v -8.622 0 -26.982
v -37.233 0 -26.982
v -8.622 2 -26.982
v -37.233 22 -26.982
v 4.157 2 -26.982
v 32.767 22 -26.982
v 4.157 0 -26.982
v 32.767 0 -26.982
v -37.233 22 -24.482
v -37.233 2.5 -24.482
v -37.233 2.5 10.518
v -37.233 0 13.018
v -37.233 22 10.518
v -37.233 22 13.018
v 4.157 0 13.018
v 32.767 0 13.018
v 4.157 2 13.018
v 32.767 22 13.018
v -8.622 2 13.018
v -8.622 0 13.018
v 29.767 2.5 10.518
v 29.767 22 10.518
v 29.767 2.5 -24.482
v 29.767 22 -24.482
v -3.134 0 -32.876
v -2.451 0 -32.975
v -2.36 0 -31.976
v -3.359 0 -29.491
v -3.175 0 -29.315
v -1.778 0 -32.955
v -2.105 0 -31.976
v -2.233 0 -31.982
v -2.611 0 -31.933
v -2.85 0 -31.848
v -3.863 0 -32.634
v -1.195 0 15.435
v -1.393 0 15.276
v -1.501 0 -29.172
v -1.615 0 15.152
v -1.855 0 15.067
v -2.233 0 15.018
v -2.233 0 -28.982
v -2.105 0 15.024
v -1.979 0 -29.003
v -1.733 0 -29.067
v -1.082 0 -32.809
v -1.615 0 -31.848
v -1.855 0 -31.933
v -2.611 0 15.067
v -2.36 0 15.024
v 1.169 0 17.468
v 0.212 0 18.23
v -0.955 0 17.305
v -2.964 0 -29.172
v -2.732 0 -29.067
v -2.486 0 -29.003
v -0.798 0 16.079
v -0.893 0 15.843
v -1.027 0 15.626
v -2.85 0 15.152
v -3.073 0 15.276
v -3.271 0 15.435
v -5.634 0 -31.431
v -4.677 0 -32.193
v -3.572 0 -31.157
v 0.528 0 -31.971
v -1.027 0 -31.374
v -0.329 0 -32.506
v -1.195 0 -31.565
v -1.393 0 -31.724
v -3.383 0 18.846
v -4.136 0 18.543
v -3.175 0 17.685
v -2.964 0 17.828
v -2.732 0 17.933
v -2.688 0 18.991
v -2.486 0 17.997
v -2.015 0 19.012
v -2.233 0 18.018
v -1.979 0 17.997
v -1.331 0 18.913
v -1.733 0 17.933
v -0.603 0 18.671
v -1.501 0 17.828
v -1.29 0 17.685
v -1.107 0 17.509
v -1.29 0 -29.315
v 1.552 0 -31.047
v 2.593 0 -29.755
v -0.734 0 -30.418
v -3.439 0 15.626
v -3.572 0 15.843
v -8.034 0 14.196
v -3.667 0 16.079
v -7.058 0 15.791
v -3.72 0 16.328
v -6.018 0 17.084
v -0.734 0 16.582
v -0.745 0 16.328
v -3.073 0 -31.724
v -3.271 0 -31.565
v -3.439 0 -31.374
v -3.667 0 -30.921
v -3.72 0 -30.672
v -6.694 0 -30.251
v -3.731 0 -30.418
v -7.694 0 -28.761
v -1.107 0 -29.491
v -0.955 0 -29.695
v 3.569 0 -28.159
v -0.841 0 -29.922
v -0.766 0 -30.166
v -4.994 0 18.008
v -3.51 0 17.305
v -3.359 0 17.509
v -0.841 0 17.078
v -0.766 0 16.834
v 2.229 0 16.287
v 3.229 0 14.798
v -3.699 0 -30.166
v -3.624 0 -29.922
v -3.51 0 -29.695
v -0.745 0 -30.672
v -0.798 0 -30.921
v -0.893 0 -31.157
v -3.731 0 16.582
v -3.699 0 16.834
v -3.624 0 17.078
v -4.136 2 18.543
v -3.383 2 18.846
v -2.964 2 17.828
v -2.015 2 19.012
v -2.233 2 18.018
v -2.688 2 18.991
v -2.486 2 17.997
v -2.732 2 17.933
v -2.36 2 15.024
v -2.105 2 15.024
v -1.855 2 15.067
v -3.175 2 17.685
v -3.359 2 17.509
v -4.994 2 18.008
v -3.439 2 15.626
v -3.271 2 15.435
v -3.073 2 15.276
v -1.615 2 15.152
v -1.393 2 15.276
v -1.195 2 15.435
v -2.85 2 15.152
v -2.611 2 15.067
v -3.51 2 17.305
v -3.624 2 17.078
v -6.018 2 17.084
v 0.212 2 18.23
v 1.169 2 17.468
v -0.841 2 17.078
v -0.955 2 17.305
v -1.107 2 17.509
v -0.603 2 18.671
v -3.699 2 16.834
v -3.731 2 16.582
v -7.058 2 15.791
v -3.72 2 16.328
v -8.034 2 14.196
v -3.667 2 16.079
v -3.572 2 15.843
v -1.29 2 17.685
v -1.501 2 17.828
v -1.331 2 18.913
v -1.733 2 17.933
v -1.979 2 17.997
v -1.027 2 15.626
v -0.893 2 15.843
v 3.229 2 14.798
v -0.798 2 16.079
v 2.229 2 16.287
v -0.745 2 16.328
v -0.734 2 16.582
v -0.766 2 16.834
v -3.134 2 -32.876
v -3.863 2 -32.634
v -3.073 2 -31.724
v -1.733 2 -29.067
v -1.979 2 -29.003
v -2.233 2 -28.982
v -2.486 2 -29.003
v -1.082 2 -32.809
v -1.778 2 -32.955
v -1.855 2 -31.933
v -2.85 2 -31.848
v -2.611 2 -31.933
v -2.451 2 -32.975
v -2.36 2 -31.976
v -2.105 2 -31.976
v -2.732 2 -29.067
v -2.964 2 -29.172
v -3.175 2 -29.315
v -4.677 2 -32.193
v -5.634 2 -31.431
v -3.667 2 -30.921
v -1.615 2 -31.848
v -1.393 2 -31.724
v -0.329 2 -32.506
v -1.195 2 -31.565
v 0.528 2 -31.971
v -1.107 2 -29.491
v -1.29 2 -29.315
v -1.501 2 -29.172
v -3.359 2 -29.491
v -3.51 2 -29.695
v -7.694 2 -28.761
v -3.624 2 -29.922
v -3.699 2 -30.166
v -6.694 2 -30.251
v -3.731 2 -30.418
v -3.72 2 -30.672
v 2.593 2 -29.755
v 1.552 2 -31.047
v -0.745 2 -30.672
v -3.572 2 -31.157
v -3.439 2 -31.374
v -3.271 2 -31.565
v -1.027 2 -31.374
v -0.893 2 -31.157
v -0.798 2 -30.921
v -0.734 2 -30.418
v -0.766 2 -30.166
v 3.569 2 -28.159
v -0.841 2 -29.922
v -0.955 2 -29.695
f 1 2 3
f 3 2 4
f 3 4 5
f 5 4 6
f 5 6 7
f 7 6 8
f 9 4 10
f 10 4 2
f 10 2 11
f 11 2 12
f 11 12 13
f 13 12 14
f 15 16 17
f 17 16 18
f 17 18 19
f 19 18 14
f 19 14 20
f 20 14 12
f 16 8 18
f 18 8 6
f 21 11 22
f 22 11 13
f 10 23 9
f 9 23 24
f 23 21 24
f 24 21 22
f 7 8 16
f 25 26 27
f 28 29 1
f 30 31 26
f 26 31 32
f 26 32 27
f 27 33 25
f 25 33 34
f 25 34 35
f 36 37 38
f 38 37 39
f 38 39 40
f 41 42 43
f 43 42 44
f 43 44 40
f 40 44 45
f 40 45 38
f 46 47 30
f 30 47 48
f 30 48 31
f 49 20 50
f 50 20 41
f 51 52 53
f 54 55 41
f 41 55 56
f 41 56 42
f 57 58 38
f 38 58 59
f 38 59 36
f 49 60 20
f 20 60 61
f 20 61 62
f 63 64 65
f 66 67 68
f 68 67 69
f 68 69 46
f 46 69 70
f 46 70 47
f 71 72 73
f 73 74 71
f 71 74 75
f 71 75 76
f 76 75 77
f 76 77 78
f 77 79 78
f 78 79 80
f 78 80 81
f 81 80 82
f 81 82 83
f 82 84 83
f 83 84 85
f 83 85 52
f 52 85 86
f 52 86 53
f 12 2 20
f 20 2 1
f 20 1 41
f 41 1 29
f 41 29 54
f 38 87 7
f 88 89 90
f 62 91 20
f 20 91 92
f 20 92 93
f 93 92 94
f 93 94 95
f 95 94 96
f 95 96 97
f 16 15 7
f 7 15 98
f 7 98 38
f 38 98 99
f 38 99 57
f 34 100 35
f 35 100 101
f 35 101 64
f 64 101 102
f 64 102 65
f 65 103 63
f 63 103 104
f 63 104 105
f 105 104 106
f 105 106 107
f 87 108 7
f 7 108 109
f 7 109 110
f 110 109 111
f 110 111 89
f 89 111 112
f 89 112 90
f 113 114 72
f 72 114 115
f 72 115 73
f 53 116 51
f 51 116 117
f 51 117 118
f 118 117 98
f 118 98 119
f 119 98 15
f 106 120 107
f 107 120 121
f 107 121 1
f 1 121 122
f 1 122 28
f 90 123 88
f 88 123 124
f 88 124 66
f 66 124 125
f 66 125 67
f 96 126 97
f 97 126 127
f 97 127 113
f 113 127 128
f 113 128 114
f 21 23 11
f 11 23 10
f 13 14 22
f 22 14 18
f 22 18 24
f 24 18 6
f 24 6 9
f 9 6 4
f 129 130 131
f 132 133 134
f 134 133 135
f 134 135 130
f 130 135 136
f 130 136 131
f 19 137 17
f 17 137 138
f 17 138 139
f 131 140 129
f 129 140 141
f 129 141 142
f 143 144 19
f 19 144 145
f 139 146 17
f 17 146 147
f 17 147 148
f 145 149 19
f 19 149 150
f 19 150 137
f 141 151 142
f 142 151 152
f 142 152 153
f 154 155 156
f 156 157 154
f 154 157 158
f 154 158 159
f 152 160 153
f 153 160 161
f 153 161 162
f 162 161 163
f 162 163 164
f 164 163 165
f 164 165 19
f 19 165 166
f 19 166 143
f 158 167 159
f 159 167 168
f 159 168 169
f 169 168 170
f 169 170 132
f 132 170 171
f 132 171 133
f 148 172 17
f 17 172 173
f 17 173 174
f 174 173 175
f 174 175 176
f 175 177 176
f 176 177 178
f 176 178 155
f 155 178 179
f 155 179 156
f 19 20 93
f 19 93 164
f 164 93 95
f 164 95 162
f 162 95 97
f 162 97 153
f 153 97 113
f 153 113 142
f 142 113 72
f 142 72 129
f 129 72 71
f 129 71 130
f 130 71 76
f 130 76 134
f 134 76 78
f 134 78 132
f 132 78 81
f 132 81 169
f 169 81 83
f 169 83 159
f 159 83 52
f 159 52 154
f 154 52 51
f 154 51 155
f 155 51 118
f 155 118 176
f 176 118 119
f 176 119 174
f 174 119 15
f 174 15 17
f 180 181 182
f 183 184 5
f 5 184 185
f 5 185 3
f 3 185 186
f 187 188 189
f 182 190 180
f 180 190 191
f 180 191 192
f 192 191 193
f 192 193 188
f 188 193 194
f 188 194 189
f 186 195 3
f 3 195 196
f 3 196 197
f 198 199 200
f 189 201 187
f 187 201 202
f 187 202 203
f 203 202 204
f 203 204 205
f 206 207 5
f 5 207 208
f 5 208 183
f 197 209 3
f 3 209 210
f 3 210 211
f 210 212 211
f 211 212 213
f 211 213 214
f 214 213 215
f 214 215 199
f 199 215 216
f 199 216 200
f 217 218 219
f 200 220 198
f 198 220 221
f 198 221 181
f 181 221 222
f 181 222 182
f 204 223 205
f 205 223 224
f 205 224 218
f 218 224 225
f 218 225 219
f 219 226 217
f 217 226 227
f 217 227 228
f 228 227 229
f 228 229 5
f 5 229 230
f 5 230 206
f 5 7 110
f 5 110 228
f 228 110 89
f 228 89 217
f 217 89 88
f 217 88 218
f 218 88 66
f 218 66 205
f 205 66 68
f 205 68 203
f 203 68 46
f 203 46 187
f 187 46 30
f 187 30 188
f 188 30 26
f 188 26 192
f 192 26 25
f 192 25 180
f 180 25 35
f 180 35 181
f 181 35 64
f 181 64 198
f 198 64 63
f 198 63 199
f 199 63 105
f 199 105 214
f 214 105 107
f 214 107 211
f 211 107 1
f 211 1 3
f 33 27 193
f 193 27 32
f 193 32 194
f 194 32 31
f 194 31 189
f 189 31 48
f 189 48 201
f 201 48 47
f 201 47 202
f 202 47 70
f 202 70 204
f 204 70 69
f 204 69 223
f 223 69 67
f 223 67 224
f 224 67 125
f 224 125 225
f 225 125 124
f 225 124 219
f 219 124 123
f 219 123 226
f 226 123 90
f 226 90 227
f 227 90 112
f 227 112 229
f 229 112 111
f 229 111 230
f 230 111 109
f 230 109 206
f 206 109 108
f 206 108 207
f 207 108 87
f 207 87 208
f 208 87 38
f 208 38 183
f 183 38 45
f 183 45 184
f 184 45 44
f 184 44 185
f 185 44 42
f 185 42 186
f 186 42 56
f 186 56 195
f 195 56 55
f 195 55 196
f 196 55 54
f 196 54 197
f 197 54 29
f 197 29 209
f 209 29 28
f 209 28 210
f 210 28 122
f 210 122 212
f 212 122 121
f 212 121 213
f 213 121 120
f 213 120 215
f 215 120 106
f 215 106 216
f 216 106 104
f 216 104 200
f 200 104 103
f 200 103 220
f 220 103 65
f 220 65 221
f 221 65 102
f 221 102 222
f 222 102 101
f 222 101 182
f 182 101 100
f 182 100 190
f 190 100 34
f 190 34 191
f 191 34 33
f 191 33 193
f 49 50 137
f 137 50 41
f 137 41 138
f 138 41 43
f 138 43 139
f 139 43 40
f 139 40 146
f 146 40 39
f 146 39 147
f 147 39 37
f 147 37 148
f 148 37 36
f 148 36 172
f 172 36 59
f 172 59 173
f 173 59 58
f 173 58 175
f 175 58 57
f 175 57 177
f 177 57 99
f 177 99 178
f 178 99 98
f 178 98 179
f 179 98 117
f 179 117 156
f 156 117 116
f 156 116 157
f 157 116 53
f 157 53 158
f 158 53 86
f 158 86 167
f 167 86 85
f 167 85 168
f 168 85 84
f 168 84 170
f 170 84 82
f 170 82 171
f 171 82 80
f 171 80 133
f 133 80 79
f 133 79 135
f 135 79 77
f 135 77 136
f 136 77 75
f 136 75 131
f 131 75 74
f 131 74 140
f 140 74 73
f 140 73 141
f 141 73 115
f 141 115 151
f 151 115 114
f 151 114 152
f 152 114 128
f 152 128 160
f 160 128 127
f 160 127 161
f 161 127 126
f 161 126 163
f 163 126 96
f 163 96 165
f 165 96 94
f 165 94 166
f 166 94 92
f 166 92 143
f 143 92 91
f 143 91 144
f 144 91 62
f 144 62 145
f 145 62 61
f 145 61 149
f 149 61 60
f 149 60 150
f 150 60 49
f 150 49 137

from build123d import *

# Parameters (mm, degrees)
IZIM1_W                     = 70
IZIM1_H                     = 40
Y_KSEKLIK_EKSTR_ZYON2_DEPTH = 25
IZIM2_W                     = 35
IZIM2_H                     = 20
KES_EKSTR_ZYON2_DEPTH       = 67
IZIM3_W                     = 70
IZIM3_H                     = 40
KES_EKSTR_ZYON3_DEPTH       = 3
IZIM4_RX                    = 26
IZIM4_RY                    = 10
Y_KSEKLIK_EKSTR_ZYON3_DEPTH = 2
IZIM5_R                     = 1.5
KES_EKSTR_ZYON5_DEPTH       = 16


with BuildPart() as part:
    # Çizim1 → Yükseklik-Ekstrüzyon2 (new body)
    with BuildSketch(Plane(origin=(0, 0, 0), x_dir=(1, 0, 0), z_dir=(0, 1, 0))):
        with Locations((-2.232631088, 6.981597522)):
            Rectangle(IZIM1_W, IZIM1_H)
    extrude(amount=Y_KSEKLIK_EKSTR_ZYON2_DEPTH)

    # Çizim2 → Kes-Ekstrüzyon2 (cut)
    with BuildSketch(Plane.ZY.offset(37.232631088)):
        with Locations((-6.981597522, 12.5)):
            Rectangle(IZIM2_W, IZIM2_H)
    extrude(amount=-KES_EKSTR_ZYON2_DEPTH, mode=Mode.SUBTRACT)

    # Çizim3 → Kes-Ekstrüzyon3 (cut)
    with BuildSketch(Plane(origin=(0, 25, 0), x_dir=(1, 0, 0), z_dir=(0, 1, 0))):
        with Locations((-2.232631088, 6.981597522)):
            Rectangle(IZIM3_W, IZIM3_H)
    extrude(amount=-KES_EKSTR_ZYON3_DEPTH, mode=Mode.SUBTRACT)

    # Çizim4 → Yükseklik-Ekstrüzyon3 (add)
    with BuildSketch(Plane.XZ):
        with Locations(Location((-2.232631088, -6.981597522), (0, 0, 90))):
            Ellipse(IZIM4_RX, IZIM4_RY)
    extrude(amount=-Y_KSEKLIK_EKSTR_ZYON3_DEPTH)

    # Çizim5 → Kes-Ekstrüzyon5 (cut)
    with BuildSketch(Plane(origin=(0, 2, 0), x_dir=(1, 0, 0), z_dir=(0, 1, 0))):
        with Locations((-2.232631088, -16.518402478)):
            Circle(IZIM5_R)
        with Locations((-2.232631088, 30.481597522)):
            Circle(IZIM5_R)
    extrude(amount=-KES_EKSTR_ZYON5_DEPTH, mode=Mode.SUBTRACT)


solid = part.part
